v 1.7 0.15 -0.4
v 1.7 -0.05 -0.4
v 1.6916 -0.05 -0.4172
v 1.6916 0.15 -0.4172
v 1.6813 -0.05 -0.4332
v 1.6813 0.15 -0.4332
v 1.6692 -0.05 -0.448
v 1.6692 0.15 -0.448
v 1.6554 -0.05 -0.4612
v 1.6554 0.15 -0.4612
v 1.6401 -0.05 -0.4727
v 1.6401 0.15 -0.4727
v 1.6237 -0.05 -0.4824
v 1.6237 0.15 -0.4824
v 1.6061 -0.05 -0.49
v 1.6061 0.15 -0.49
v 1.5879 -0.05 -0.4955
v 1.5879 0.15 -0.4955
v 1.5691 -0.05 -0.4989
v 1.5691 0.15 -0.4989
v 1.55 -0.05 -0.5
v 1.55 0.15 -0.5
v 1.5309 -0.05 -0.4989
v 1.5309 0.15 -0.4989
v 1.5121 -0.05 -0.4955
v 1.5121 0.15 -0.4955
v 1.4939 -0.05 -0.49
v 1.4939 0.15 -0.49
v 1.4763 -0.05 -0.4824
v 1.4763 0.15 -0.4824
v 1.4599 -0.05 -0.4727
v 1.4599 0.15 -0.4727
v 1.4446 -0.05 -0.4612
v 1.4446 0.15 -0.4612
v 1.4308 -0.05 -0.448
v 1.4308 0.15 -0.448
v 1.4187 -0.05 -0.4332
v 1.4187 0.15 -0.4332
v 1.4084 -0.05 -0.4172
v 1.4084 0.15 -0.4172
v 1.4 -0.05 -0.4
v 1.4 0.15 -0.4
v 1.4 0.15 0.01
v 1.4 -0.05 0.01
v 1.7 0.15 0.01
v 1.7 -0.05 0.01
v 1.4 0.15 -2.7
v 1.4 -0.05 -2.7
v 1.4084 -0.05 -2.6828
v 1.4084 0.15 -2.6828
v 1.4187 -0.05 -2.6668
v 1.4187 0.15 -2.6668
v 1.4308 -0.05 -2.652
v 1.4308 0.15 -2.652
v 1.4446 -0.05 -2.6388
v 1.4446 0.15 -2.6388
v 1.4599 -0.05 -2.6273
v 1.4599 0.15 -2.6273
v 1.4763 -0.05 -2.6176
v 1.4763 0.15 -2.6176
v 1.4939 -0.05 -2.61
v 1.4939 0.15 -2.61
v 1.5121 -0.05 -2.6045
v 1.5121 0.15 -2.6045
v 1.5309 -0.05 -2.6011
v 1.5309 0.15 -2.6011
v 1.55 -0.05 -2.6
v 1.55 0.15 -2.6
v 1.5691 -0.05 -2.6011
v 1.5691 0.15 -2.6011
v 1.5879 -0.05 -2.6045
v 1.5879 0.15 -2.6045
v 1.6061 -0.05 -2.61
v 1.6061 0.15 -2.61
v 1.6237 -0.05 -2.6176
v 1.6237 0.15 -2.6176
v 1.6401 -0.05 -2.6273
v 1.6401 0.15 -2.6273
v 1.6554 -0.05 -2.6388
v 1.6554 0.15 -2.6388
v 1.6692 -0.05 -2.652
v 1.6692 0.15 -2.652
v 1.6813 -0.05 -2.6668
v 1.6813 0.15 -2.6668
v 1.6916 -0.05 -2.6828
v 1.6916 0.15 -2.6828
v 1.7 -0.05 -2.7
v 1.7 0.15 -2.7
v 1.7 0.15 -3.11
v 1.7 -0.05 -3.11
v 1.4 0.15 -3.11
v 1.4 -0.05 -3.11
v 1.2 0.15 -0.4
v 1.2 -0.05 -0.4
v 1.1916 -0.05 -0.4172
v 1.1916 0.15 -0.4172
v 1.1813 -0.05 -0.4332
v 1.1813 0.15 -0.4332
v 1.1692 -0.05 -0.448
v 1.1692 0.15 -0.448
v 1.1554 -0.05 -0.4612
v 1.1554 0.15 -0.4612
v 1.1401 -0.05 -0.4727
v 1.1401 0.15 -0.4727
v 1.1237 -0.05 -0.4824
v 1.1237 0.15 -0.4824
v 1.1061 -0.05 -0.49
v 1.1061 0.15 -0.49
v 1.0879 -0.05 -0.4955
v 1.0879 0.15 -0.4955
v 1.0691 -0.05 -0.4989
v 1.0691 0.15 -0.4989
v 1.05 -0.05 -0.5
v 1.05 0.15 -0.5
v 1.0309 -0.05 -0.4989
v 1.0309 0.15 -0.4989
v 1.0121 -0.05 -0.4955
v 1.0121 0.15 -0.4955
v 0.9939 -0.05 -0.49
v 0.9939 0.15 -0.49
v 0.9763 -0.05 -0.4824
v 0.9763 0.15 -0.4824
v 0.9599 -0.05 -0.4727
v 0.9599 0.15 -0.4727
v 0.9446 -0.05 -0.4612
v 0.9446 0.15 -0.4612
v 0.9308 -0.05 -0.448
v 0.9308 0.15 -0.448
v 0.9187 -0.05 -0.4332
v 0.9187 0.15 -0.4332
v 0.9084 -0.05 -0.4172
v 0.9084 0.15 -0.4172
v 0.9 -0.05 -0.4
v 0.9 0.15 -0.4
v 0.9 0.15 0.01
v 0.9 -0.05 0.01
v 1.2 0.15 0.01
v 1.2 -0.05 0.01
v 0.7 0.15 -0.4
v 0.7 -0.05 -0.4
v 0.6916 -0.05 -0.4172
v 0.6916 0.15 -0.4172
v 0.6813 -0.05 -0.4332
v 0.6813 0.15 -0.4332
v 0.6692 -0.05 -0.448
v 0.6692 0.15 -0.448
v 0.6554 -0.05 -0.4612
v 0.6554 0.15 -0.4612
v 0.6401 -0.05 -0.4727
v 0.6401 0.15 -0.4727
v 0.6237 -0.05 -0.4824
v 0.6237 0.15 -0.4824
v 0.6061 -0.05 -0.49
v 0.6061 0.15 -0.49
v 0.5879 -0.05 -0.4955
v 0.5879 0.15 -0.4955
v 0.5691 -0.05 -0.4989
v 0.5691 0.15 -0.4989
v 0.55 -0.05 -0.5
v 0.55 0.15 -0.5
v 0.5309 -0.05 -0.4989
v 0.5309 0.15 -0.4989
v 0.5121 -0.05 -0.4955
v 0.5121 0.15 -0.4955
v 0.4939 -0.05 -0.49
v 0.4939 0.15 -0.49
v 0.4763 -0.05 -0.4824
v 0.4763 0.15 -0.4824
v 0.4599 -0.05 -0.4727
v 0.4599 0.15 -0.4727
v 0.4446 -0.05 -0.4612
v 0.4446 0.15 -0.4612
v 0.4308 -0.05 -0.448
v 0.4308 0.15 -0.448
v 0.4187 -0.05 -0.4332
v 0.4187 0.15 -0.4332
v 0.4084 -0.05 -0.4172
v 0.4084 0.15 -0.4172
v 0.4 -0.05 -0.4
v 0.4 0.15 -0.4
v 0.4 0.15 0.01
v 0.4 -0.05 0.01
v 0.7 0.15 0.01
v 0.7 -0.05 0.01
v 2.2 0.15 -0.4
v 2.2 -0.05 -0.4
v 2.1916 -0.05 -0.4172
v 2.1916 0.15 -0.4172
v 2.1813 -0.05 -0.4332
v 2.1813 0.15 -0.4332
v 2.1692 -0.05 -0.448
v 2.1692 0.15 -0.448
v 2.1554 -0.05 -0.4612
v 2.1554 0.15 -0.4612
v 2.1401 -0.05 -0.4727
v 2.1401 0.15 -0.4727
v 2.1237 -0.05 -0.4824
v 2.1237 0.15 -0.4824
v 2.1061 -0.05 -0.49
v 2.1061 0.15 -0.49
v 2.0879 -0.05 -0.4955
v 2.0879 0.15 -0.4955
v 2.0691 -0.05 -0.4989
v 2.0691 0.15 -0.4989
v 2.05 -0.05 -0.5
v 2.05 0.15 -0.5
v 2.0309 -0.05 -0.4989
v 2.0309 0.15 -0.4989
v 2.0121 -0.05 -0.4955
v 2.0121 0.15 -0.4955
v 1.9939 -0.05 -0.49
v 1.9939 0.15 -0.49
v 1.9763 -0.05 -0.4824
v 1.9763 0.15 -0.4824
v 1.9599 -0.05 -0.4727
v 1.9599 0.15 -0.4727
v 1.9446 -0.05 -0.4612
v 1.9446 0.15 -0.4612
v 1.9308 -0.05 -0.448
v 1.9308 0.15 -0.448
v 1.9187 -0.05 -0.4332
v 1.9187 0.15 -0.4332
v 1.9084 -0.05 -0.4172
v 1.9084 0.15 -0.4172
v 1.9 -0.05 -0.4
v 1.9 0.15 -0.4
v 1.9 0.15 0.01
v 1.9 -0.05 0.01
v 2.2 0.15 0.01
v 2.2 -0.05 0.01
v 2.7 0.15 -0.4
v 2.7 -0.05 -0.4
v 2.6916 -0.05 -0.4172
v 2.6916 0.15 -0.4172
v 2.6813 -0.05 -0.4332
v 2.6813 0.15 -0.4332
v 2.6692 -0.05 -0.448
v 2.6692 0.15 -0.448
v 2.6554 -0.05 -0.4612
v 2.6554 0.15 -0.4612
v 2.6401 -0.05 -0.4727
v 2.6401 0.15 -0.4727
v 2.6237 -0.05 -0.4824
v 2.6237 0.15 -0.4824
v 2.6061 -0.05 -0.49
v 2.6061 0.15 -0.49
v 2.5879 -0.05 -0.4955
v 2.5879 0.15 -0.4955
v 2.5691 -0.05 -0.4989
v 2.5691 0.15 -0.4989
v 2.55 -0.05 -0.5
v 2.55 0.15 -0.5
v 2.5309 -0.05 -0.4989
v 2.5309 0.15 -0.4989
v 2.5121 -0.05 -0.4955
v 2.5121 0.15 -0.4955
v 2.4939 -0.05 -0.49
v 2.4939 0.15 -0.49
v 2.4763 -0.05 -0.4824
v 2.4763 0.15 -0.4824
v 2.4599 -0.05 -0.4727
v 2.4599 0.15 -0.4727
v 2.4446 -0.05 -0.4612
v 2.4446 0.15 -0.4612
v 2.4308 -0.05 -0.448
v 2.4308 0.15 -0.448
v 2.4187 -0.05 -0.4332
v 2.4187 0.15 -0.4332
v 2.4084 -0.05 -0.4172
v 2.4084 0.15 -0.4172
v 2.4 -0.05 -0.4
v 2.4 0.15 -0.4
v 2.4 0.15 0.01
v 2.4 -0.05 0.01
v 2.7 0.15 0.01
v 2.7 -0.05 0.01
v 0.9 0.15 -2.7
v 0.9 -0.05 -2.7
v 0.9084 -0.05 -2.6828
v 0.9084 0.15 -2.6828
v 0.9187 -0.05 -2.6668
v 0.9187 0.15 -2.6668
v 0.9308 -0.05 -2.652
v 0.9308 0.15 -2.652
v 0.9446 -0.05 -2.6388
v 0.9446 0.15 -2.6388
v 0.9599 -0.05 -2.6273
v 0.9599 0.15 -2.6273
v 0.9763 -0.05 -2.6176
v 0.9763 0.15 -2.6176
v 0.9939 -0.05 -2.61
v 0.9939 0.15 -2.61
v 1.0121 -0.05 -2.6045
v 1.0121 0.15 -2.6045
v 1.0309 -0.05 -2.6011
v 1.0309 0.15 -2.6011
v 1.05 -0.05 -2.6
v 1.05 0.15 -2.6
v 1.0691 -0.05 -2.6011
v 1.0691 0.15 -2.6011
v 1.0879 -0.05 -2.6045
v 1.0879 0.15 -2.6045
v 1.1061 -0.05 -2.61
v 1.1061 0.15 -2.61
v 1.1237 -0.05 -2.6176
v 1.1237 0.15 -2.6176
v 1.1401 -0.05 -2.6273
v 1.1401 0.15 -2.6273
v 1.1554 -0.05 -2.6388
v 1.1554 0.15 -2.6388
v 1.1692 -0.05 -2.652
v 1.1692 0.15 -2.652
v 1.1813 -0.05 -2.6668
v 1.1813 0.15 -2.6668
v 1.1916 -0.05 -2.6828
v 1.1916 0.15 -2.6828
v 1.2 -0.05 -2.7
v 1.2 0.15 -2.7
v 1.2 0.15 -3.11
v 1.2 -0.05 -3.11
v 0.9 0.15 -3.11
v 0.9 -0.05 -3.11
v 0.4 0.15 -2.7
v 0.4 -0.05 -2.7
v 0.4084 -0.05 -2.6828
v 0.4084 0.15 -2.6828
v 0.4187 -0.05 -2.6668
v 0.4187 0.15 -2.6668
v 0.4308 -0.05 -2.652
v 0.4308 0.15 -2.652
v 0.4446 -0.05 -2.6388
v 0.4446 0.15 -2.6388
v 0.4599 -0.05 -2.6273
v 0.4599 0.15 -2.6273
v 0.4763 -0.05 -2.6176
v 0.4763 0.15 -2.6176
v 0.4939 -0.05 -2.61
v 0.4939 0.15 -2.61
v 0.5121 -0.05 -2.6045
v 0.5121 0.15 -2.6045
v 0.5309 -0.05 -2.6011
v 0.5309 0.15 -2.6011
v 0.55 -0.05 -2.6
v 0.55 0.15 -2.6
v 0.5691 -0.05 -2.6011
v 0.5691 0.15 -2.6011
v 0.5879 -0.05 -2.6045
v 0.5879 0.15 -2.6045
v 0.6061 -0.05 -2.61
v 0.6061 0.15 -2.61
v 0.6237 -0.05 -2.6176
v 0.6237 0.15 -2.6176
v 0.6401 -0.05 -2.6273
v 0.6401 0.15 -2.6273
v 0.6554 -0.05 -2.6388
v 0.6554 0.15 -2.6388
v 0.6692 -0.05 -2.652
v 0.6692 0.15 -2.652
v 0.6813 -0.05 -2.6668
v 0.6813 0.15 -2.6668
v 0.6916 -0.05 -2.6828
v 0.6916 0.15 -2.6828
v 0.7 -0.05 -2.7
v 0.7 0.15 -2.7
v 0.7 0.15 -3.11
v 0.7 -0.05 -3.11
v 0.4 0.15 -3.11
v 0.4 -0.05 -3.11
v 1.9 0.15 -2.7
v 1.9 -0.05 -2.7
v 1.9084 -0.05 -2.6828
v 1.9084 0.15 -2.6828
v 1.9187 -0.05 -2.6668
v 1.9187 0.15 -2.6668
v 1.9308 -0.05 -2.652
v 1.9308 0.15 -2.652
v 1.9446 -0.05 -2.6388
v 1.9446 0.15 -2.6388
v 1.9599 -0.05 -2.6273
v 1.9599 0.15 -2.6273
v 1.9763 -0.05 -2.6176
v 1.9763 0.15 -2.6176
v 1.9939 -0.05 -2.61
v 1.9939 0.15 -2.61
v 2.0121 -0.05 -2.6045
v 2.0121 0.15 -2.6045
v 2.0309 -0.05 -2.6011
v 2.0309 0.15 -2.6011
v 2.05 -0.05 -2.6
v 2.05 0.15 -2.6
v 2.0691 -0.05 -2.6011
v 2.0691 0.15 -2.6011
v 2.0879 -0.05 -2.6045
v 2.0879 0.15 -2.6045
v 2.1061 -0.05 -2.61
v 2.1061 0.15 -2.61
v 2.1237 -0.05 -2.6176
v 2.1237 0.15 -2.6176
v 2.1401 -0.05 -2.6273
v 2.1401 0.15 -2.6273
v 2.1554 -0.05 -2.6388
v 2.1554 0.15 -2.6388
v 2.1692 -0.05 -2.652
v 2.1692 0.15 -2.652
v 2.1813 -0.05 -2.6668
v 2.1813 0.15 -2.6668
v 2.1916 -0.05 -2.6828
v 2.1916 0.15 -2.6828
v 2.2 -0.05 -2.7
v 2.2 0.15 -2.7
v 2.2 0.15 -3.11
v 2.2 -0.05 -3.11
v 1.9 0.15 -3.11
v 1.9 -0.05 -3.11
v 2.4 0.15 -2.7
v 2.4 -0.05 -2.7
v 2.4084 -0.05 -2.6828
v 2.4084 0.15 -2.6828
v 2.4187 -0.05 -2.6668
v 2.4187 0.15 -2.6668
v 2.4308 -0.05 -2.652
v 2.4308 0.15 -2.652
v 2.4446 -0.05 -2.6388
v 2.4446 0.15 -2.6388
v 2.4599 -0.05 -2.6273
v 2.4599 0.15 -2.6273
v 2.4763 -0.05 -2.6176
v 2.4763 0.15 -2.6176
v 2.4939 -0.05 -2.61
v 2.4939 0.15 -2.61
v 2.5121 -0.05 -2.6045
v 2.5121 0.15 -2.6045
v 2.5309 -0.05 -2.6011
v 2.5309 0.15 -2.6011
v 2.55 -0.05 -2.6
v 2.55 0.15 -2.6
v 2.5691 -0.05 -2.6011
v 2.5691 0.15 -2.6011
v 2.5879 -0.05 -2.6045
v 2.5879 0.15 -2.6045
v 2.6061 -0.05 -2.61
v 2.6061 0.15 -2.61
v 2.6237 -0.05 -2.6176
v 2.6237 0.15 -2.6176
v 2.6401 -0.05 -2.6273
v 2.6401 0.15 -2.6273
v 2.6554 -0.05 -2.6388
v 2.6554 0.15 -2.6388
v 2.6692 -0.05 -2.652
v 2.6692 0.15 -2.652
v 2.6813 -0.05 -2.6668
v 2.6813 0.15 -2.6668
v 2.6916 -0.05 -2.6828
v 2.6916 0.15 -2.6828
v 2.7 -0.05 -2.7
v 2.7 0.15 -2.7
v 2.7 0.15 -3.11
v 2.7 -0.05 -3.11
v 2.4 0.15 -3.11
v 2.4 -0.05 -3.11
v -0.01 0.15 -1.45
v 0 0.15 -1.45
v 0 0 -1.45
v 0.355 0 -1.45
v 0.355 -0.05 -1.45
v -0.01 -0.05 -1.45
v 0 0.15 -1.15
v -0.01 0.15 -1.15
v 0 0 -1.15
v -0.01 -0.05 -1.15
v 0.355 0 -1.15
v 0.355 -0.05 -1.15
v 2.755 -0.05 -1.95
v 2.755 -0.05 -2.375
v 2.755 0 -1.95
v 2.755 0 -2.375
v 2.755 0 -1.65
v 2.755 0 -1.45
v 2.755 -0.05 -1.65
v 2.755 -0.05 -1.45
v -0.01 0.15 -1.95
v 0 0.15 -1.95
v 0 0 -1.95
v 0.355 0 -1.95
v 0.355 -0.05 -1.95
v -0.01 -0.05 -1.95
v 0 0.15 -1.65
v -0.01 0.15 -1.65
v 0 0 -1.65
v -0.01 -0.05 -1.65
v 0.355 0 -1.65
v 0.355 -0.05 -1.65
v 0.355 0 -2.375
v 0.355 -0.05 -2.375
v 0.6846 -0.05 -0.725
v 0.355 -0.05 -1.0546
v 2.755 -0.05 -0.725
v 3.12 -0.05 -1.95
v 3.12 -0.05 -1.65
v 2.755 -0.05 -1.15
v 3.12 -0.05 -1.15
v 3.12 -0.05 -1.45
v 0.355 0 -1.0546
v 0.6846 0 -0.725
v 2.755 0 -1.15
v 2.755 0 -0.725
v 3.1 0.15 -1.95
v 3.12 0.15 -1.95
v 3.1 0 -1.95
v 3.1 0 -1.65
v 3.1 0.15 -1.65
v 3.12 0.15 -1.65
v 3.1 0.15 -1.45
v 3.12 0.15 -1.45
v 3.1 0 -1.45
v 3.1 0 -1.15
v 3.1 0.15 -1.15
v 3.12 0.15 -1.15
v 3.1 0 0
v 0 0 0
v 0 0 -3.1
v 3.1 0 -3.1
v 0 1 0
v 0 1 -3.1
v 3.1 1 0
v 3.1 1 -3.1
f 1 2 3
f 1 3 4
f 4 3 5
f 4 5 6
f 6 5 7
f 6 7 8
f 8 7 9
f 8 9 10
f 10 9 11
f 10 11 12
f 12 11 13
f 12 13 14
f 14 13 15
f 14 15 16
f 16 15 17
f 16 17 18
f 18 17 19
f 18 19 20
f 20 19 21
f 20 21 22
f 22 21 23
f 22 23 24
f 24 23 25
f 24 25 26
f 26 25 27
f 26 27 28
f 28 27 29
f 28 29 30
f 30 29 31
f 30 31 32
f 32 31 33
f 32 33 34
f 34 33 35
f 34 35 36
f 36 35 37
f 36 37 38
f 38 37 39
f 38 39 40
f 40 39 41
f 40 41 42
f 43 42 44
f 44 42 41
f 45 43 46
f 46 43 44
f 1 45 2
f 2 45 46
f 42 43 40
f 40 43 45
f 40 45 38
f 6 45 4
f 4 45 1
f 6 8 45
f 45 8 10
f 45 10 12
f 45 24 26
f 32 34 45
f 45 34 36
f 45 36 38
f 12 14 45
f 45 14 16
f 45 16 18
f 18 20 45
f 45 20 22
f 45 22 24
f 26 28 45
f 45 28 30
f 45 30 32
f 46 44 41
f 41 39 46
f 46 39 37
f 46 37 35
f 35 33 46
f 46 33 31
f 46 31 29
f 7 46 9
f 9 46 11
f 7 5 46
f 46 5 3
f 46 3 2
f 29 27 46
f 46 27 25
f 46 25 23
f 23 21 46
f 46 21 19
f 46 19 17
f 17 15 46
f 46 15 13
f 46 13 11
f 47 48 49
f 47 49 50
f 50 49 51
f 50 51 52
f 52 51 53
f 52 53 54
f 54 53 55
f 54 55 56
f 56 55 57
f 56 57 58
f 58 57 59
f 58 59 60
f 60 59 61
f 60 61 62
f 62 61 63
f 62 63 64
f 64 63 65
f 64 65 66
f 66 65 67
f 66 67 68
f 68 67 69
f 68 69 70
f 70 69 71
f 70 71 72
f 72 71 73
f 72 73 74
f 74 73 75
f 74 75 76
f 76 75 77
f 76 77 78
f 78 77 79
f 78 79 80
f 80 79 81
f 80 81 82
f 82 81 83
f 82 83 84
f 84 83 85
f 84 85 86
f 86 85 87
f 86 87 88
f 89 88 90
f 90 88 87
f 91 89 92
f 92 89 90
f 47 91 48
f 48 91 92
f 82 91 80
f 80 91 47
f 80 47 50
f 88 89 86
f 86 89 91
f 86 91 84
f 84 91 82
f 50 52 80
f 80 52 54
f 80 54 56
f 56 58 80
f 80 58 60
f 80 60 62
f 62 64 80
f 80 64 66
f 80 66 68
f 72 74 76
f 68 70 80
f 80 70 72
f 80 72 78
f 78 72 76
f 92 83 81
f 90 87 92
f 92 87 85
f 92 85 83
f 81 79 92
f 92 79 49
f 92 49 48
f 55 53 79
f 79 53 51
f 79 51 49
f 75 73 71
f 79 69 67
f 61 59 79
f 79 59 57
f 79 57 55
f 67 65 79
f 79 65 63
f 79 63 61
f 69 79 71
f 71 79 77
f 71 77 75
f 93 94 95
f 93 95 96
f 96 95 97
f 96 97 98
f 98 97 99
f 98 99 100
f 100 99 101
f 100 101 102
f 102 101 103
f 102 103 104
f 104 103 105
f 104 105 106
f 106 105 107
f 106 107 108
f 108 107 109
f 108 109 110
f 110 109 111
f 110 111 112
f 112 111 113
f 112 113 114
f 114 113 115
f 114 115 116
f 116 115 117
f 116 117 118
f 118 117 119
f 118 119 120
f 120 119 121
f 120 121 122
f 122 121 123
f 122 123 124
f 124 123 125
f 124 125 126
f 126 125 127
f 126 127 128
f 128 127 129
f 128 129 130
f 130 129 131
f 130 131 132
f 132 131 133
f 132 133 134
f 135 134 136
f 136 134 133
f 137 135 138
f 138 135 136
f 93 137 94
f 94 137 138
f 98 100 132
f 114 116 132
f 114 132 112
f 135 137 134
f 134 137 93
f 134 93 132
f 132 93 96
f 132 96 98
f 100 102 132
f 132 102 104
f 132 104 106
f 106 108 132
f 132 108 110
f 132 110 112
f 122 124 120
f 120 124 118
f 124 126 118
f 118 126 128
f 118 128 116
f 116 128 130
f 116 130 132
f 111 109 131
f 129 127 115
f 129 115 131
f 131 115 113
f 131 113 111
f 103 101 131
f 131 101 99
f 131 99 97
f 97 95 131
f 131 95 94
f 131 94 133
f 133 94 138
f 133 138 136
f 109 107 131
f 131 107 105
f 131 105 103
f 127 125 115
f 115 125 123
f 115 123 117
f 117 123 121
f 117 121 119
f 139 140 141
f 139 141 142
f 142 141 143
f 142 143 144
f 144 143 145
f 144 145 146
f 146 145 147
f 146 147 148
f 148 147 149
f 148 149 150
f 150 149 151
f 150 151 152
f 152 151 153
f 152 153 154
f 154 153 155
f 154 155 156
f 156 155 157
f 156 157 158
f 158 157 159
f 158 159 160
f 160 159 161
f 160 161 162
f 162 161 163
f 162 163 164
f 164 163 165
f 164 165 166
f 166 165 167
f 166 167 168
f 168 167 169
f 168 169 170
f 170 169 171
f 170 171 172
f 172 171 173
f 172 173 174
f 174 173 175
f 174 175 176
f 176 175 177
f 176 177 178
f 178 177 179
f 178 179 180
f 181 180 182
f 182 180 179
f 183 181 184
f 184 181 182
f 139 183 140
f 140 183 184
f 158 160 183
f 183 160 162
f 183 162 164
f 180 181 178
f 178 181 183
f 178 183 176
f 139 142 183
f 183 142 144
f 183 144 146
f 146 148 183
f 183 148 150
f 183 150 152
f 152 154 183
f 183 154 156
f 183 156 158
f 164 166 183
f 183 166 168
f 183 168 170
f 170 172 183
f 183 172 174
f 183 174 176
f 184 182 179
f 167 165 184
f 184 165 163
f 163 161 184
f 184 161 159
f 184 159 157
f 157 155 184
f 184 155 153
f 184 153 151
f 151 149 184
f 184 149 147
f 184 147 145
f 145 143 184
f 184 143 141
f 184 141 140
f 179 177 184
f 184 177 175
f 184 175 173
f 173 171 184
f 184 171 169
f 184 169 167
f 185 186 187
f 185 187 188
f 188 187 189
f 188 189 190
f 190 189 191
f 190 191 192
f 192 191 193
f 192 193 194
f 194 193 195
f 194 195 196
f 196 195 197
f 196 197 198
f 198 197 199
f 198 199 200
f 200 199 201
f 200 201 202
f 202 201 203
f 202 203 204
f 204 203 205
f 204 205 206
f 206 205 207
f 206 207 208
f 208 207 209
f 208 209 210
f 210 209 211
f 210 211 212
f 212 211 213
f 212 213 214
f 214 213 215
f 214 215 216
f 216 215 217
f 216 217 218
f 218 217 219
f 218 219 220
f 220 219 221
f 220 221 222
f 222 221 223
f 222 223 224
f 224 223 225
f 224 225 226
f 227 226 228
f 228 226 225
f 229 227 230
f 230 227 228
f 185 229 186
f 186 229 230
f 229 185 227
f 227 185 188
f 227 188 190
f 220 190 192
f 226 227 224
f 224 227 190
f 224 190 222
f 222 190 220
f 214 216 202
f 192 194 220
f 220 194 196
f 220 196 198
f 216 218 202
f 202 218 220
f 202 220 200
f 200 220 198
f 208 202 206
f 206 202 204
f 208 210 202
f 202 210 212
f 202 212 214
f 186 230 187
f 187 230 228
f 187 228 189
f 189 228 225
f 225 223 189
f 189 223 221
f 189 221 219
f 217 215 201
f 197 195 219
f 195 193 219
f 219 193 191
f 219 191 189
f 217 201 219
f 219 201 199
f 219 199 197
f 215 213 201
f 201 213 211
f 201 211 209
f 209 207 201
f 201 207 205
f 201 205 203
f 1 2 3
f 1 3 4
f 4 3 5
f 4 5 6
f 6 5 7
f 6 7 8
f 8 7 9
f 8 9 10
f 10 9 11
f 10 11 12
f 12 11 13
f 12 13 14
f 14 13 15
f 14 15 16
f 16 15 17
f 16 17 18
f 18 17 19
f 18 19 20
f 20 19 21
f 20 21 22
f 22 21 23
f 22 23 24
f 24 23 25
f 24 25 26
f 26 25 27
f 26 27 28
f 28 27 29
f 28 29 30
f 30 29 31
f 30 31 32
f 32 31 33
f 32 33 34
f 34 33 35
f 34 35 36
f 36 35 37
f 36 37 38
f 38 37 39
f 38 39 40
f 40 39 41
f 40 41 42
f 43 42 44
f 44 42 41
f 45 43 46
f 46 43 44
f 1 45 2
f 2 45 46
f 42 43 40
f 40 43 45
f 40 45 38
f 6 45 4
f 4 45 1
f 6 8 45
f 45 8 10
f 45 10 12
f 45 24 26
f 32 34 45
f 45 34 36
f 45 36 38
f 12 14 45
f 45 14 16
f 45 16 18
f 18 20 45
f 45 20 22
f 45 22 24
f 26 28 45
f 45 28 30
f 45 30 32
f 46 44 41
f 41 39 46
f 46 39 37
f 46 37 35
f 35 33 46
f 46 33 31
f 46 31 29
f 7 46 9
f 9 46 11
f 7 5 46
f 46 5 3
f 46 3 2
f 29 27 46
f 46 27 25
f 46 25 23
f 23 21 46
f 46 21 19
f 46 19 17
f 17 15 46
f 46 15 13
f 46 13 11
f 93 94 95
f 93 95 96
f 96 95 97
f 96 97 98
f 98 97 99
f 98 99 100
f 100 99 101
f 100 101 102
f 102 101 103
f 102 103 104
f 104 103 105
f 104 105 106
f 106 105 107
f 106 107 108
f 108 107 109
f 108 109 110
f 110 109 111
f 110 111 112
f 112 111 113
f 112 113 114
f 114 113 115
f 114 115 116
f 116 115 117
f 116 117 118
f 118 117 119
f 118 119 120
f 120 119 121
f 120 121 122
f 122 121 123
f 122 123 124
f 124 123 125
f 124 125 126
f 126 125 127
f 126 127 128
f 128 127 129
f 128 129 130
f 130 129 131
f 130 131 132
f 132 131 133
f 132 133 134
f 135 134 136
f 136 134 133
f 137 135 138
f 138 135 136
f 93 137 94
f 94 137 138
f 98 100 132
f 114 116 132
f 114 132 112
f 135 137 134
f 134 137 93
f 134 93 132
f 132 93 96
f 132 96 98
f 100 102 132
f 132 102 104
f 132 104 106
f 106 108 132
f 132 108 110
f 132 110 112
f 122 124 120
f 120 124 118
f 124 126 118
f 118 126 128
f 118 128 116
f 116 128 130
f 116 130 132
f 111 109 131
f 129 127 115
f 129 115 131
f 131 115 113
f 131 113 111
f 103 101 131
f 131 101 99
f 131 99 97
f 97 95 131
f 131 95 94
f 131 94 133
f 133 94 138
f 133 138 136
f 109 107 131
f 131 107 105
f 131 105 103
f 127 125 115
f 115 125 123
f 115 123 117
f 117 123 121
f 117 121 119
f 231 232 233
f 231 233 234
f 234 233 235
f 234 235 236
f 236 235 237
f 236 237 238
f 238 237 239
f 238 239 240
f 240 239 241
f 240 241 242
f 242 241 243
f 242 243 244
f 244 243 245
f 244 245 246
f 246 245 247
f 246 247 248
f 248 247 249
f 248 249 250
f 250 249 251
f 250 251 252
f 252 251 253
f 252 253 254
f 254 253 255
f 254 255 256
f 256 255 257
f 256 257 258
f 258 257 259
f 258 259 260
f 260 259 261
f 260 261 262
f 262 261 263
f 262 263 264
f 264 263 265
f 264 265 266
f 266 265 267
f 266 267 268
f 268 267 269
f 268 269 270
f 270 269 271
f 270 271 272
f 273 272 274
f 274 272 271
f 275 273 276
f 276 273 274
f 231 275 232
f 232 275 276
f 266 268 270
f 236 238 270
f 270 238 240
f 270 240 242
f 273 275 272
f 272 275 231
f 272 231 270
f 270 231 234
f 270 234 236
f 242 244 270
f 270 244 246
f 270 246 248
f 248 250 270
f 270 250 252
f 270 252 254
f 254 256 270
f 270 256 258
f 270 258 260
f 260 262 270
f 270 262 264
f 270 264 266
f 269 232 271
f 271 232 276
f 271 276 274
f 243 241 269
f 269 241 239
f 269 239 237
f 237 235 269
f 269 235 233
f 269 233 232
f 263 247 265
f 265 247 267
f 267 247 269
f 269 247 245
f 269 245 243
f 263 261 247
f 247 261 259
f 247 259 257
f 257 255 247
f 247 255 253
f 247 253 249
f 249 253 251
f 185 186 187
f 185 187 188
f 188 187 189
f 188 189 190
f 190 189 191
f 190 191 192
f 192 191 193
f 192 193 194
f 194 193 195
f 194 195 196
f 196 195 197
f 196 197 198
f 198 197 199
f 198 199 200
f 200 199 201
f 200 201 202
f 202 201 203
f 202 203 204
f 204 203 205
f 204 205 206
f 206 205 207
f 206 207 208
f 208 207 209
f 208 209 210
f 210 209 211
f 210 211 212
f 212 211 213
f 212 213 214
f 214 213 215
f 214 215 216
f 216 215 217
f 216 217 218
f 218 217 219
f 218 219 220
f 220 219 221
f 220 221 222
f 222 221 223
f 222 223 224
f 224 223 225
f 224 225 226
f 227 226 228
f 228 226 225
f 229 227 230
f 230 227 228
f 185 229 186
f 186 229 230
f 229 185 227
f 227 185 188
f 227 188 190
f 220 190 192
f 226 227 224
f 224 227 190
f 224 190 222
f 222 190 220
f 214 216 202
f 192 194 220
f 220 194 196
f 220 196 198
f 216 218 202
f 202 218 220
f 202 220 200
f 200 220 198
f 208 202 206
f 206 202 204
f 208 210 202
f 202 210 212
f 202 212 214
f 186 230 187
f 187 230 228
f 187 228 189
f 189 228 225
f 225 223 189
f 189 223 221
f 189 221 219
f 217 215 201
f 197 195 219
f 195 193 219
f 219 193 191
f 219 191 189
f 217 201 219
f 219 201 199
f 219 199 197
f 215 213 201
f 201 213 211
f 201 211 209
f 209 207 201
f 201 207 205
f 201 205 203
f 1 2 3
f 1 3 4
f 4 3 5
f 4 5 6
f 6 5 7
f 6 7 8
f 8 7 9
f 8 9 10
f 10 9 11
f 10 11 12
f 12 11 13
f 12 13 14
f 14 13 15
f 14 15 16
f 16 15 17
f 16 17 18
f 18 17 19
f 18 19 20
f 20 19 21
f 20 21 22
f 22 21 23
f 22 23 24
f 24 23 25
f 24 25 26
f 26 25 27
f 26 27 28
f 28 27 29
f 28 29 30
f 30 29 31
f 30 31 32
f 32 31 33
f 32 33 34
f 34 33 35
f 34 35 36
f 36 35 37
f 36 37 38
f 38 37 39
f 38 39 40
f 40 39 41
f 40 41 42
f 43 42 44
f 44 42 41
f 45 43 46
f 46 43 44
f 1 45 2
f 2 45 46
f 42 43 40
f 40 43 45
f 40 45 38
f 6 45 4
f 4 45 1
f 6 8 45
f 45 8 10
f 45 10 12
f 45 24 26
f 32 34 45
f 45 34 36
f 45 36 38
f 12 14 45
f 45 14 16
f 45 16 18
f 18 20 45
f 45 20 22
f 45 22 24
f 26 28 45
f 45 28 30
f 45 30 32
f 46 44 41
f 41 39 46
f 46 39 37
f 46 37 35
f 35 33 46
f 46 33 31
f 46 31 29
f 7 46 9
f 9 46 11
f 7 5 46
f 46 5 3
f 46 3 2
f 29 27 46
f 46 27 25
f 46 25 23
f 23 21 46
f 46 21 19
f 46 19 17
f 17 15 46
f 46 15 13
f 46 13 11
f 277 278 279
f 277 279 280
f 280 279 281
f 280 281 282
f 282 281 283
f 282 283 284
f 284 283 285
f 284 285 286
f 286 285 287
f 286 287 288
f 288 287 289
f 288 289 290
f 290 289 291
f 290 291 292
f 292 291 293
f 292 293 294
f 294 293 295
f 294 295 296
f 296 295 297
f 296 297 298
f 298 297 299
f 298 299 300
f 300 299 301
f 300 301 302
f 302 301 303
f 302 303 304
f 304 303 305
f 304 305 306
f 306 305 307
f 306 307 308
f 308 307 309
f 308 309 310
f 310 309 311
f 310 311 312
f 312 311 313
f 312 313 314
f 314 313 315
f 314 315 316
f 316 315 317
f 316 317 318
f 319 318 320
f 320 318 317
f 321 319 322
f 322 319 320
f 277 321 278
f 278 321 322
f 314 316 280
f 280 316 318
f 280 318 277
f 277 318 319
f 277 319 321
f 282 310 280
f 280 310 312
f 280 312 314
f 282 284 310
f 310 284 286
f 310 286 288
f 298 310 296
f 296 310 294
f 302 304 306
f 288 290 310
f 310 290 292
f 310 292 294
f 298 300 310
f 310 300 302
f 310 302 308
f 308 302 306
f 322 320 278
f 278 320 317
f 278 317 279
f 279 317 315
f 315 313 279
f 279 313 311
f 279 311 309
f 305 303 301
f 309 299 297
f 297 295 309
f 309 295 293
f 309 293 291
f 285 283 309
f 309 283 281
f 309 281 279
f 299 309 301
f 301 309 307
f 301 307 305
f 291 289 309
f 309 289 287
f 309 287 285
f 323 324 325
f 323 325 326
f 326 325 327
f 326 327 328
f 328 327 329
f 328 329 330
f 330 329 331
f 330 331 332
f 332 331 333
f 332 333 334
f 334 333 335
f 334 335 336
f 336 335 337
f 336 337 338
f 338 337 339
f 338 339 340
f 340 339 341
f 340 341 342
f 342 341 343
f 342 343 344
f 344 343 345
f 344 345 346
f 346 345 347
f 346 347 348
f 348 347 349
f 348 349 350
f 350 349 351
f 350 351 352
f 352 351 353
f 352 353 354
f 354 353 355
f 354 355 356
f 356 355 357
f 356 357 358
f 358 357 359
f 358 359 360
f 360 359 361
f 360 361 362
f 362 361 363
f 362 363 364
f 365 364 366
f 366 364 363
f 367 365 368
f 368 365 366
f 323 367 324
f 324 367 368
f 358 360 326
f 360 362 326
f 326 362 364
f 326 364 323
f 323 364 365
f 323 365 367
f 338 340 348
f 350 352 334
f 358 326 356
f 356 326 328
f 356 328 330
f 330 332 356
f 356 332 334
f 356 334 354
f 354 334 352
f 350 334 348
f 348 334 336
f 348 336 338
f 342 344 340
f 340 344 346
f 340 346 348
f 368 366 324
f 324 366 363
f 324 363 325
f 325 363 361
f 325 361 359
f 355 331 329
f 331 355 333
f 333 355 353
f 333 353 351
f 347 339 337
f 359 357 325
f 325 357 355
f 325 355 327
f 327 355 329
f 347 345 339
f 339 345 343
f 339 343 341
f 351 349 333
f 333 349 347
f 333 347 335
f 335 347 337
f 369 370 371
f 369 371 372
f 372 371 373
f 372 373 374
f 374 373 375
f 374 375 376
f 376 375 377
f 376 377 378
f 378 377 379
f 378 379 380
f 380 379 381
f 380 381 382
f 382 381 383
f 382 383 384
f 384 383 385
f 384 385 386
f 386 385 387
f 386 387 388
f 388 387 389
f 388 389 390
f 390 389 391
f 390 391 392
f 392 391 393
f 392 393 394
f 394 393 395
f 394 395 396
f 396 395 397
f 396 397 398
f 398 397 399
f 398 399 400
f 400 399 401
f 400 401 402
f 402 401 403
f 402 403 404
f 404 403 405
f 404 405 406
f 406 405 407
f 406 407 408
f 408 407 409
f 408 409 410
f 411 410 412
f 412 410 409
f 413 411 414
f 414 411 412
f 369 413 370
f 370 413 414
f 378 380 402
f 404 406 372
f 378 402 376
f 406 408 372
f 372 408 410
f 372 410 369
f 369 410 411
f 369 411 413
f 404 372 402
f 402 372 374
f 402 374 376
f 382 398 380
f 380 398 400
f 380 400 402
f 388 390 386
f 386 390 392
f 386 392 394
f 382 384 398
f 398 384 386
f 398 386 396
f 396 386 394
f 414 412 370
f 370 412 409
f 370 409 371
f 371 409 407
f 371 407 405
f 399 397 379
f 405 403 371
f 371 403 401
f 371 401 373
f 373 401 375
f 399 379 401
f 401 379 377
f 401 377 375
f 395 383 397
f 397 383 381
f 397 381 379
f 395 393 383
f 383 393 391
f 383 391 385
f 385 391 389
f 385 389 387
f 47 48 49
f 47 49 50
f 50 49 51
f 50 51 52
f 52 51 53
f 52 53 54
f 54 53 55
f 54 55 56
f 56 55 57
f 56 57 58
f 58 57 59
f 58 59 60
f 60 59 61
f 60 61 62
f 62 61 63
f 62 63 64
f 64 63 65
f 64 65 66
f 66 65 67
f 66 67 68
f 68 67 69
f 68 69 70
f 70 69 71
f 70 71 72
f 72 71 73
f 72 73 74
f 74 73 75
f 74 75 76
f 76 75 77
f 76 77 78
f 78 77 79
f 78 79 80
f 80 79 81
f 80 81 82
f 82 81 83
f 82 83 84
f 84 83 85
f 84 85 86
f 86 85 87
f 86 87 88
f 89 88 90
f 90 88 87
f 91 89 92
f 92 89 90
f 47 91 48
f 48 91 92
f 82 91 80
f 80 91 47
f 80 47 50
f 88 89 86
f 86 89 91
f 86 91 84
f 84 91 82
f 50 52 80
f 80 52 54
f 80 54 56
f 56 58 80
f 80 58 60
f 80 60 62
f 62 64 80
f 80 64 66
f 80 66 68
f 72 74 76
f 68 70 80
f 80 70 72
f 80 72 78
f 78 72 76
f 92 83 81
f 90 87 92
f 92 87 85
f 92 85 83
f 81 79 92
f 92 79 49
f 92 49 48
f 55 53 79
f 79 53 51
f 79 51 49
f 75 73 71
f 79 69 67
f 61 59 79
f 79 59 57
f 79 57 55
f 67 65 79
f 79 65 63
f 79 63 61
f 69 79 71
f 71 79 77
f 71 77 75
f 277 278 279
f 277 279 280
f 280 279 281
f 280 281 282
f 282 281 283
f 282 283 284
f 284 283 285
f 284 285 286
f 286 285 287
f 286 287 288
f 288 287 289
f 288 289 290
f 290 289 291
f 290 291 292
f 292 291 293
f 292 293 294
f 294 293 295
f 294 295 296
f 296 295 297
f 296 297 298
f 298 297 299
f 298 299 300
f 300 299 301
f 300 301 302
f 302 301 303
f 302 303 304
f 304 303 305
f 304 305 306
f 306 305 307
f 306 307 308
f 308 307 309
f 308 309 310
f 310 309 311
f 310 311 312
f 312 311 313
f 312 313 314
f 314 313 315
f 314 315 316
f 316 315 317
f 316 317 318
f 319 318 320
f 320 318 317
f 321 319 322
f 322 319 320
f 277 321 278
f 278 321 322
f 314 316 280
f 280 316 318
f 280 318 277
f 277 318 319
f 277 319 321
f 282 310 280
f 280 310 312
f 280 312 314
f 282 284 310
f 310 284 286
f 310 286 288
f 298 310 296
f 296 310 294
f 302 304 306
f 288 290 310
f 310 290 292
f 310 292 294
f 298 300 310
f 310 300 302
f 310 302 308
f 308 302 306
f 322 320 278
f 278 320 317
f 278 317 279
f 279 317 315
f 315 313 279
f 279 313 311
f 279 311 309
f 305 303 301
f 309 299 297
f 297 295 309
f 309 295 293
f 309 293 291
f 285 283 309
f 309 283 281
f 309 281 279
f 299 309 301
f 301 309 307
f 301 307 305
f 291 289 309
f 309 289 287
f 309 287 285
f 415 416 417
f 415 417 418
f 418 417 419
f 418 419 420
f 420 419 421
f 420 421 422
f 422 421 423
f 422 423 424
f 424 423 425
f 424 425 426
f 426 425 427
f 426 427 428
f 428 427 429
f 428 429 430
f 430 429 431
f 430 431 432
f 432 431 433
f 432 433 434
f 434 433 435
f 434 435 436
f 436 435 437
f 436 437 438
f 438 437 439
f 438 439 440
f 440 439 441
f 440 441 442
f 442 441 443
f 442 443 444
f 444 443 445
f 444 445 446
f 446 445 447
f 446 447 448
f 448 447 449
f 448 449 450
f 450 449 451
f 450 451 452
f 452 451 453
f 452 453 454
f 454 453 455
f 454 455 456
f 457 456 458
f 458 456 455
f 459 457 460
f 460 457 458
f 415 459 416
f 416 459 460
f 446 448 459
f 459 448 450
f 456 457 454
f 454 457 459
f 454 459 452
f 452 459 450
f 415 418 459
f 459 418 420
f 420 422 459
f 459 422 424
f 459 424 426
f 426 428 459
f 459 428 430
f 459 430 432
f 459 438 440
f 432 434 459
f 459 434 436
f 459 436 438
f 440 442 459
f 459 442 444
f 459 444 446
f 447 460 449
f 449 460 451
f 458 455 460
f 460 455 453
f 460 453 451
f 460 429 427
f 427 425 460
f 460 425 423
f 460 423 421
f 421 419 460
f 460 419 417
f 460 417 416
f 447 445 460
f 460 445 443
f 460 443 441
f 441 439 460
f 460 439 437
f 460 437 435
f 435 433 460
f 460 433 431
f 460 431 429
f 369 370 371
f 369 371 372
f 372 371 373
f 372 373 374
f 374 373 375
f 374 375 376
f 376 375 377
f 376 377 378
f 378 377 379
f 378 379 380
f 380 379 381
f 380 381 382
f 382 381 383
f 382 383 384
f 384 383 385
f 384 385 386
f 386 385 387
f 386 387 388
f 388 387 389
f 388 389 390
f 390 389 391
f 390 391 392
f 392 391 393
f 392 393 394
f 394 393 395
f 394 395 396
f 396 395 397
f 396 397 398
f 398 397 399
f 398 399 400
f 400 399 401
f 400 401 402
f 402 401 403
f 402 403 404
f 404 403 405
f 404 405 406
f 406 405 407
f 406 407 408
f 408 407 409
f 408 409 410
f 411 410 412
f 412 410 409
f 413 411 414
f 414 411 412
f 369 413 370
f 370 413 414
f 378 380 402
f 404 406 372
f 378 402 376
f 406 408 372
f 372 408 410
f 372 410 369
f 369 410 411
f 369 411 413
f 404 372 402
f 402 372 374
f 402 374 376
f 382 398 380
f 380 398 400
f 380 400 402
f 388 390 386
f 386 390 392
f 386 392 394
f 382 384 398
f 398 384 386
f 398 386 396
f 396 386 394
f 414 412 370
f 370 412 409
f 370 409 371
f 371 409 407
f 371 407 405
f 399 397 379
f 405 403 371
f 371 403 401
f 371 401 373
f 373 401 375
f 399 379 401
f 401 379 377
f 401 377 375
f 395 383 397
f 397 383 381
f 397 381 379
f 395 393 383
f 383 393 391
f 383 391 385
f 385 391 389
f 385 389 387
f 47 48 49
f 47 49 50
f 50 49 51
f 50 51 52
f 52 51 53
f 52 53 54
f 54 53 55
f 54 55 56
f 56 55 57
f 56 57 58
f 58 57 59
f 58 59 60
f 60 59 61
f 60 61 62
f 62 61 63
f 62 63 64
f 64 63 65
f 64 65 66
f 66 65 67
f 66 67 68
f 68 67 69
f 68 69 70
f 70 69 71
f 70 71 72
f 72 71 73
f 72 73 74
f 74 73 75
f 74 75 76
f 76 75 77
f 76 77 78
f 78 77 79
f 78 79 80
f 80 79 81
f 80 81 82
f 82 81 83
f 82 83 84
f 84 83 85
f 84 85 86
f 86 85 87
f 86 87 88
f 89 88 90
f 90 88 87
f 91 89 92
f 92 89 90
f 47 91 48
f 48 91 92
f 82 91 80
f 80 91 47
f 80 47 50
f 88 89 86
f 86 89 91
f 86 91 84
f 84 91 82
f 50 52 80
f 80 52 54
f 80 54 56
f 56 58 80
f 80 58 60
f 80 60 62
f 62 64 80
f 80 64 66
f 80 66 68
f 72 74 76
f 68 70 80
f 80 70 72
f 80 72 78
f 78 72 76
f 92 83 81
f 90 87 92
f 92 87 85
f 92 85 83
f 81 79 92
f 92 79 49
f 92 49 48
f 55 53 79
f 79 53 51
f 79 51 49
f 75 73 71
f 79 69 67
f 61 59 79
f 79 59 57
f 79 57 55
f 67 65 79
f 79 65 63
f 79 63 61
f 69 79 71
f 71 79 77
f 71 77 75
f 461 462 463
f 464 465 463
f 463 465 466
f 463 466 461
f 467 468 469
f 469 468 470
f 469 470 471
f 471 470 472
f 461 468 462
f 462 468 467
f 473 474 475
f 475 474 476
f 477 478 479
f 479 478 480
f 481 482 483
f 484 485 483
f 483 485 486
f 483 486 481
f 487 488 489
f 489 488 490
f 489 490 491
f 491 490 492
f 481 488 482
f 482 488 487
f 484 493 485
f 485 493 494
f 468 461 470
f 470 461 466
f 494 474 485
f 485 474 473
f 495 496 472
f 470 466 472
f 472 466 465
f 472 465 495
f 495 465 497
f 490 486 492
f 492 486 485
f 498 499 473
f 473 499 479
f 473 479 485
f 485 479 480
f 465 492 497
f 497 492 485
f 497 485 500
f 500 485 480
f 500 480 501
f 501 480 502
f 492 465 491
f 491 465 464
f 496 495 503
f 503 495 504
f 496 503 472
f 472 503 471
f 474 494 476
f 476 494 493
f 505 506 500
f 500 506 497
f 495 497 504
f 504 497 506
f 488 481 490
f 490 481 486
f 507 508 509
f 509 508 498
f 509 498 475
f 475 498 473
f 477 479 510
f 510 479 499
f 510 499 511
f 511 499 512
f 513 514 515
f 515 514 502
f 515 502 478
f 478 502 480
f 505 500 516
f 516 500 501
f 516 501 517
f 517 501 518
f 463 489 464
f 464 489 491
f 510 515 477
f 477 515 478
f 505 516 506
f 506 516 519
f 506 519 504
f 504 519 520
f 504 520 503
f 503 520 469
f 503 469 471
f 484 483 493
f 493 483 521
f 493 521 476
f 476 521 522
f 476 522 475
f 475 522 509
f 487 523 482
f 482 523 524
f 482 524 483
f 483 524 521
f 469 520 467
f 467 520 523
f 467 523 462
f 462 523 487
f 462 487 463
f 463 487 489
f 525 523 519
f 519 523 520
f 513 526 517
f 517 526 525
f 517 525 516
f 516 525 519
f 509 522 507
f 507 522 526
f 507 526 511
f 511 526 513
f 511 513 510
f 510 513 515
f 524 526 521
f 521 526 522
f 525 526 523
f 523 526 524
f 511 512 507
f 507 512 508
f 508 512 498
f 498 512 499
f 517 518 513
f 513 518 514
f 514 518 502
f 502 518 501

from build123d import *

# Parameters (mm, degrees)
SKETCH1_W            = 3.1
SKETCH1_H            = 3.1
BOSS_EXTRUDE1_DEPTH  = 1
BOSS_EXTRUDE2_START  = 0.05
BOSS_EXTRUDE2_DEPTH  = 0.2
BOSS_EXTRUDE3_START  = 0.05
BOSS_EXTRUDE3_DEPTH  = 0.2
BOSS_EXTRUDE4_START  = 0.05
BOSS_EXTRUDE4_DEPTH  = 0.2
LPATTERN3_COUNT      = 2
LPATTERN3_PITCH      = 0.5
MIRROR7_START        = 0.05
MIRROR7_COPY_1_DEPTH = 0.2
LPATTERN4_START      = -0.05
LPATTERN4_DEPTH      = 0.2
LPATTERN4_2_DEPTH    = 0.2
LPATTERN4_3_DEPTH    = 0.2
LPATTERN4_4_DEPTH    = 0.2
LPATTERN4_5_DEPTH    = 0.2
LPATTERN4_6_DEPTH    = 0.2
LPATTERN4_7_DEPTH    = 0.2
LPATTERN4_8_DEPTH    = 0.2
LPATTERN5_START      = -0.05
LPATTERN5_DEPTH      = 0.2
LPATTERN5_2_DEPTH    = 0.2
LPATTERN5_3_DEPTH    = 0.2
LPATTERN5_4_DEPTH    = 0.2
LPATTERN5_5_DEPTH    = 0.2
LPATTERN5_6_DEPTH    = 0.2
LPATTERN5_7_DEPTH    = 0.2
LPATTERN5_8_DEPTH    = 0.2
BOSS_EXTRUDE5_DEPTH  = 0.05


# Read off the part's stored shape, not the designer's step: LPattern4, LPattern5
with BuildPart() as part:
    # Sketch1 → Boss-Extrude1 (new body)
    with BuildSketch(Plane(origin=(0, 0, 0), x_dir=(1, 0, 0), z_dir=(0, 1, 0))):
        with Locations((1.55, 1.55)):
            Rectangle(SKETCH1_W, SKETCH1_H)
    extrude(amount=BOSS_EXTRUDE1_DEPTH)


with BuildPart() as body_2:
    # Sketch2 → Boss-Extrude2 (new body)
    with BuildSketch(Plane.XZ.offset(BOSS_EXTRUDE2_START)):
        with BuildLine():
            Line((1.7, 0.01), (1.7, -0.4))
            ThreePointArc((1.7, -0.4), (1.55, -0.5), (1.4, -0.4))
            Line((1.4, -0.4), (1.4, 0.01))
            Line((1.4, 0.01), (1.7, 0.01))
        make_face()
    extrude(amount=-BOSS_EXTRUDE2_DEPTH)


with BuildPart() as body_3:
    # Sketch4 → Boss-Extrude3 (new body)
    with BuildSketch(Plane.XZ.offset(BOSS_EXTRUDE3_START)):
        with BuildLine():
            Line((1.4, -3.11), (1.4, -2.7))
            ThreePointArc((1.4, -2.7), (1.55, -2.6), (1.7, -2.7))
            Line((1.7, -2.7), (1.7, -3.11))
            Line((1.7, -3.11), (1.4, -3.11))
        make_face()
    extrude(amount=-BOSS_EXTRUDE3_DEPTH)


with BuildPart() as body_4:
    # Sketch5 → Boss-Extrude4 (new body)
    with BuildSketch(Plane.XZ.offset(BOSS_EXTRUDE4_START)):
        with BuildLine():
            Line((-0.01, -1.15), (0.4, -1.15))
            ThreePointArc((0.4, -1.15), (0.5, -1.3), (0.4, -1.45))
            Line((0.4, -1.45), (-0.01, -1.45))
            Line((-0.01, -1.45), (-0.01, -1.15))
        make_face()
    boss_extrude4 = extrude(amount=-BOSS_EXTRUDE4_DEPTH)


with BuildPart() as lpattern3_1:
    # LPattern3: Boss-Extrude4 ×2
    with Locations(*[(0, 0, -i * LPATTERN3_PITCH) for i in range(1, LPATTERN3_COUNT)]):
        add(boss_extrude4)


with BuildPart() as part_1:
    add(part.part)

    # Mirror7: Boss-Extrude4 across plane
    add(boss_extrude4.mirror(Plane(origin=(1.555, 0, 0), x_dir=(0, 0, 1), z_dir=(1, 0, 0))))

    # Mirror7 copy 1 sketch → Mirror7 copy 1 (add)
    with BuildSketch(Plane(origin=(3.11, 0, -0.5), x_dir=(-1, 0, 0), z_dir=(0, -1, 0)).offset(MIRROR7_START)):
        with BuildLine():
            Line((-0.01, 1.15), (0.4, 1.15))
            ThreePointArc((0.4, 1.15), (0.5, 1.3), (0.4, 1.45))
            Line((0.4, 1.45), (-0.01, 1.45))
            Line((-0.01, 1.45), (-0.01, 1.15))
        make_face()
    extrude(amount=-MIRROR7_COPY_1_DEPTH)

    add(body_4.part)  # Boss-Extrude5 merges body 4

    add(lpattern3_1.part)  # Boss-Extrude5 merges LPattern3_1
    # Sketch6 → Boss-Extrude5 (add)
    with BuildSketch(Plane.XZ):
        Polygon((0.684601229, -0.725), (0.355, -1.054601229), (0.355, -2.375), (2.755, -2.375), (2.755, -0.725), (1.555, -0.725), align=None)
    extrude(amount=BOSS_EXTRUDE5_DEPTH)


with BuildPart() as body_6:
    # LPattern4 outline → LPattern4 (new body)
    with BuildSketch(Plane(origin=(0, 0, 0), x_dir=(1, 0, 0), z_dir=(0, 1, 0)).offset(LPATTERN4_START)):
        with BuildLine():
            ThreePointArc((2.2, 0.4), (2.05, 0.5), (1.9, 0.4))
            Line((1.9, 0.4), (1.9, -0.01))
            Line((1.9, -0.01), (2.2, -0.01))
            Line((2.2, -0.01), (2.2, 0.4))
        make_face()
    extrude(amount=LPATTERN4_DEPTH)


with BuildPart() as body_7:
    # LPattern4 2 outline → LPattern4 2 (new body)
    with BuildSketch(Plane(origin=(0, 0, 0), x_dir=(1, 0, 0), z_dir=(0, 1, 0)).offset(LPATTERN4_START)):
        with BuildLine():
            ThreePointArc((2.7, 0.4), (2.55, 0.5), (2.4, 0.4))
            Line((2.4, 0.4), (2.4, -0.01))
            Line((2.4, -0.01), (2.7, -0.01))
            Line((2.7, -0.01), (2.7, 0.4))
        make_face()
    extrude(amount=LPATTERN4_2_DEPTH)


with BuildPart() as body_8:
    # LPattern4 3 outline → LPattern4 3 (new body)
    with BuildSketch(Plane(origin=(0, 0, 0), x_dir=(1, 0, 0), z_dir=(0, 1, 0)).offset(LPATTERN4_START)):
        with BuildLine():
            ThreePointArc((1.2, 0.4), (1.05, 0.5), (0.9, 0.4))
            Line((0.9, 0.4), (0.9, -0.01))
            Line((0.9, -0.01), (1.2, -0.01))
            Line((1.2, -0.01), (1.2, 0.4))
        make_face()
    extrude(amount=LPATTERN4_3_DEPTH)


with BuildPart() as body_9:
    # LPattern4 4 outline → LPattern4 4 (new body)
    with BuildSketch(Plane(origin=(0, 0, 0), x_dir=(1, 0, 0), z_dir=(0, 1, 0)).offset(LPATTERN4_START)):
        with BuildLine():
            ThreePointArc((1.7, 0.4), (1.55, 0.5), (1.4, 0.4))
            Line((1.4, 0.4), (1.4, -0.01))
            Line((1.4, -0.01), (1.7, -0.01))
            Line((1.7, -0.01), (1.7, 0.4))
        make_face()
    extrude(amount=LPATTERN4_4_DEPTH)


with BuildPart() as body_10:
    # LPattern4 5 outline → LPattern4 5 (new body)
    with BuildSketch(Plane(origin=(0, 0, 0), x_dir=(1, 0, 0), z_dir=(0, 1, 0)).offset(LPATTERN4_START)):
        with BuildLine():
            ThreePointArc((2.2, 0.4), (2.05, 0.5), (1.9, 0.4))
            Line((1.9, 0.4), (1.9, -0.01))
            Line((1.9, -0.01), (2.2, -0.01))
            Line((2.2, -0.01), (2.2, 0.4))
        make_face()
    extrude(amount=LPATTERN4_5_DEPTH)


with BuildPart() as body_11:
    # LPattern4 6 outline → LPattern4 6 (new body)
    with BuildSketch(Plane(origin=(0, 0, 0), x_dir=(1, 0, 0), z_dir=(0, 1, 0)).offset(LPATTERN4_START)):
        with BuildLine():
            ThreePointArc((0.7, 0.4), (0.55, 0.5), (0.4, 0.4))
            Line((0.4, 0.4), (0.4, -0.01))
            Line((0.4, -0.01), (0.7, -0.01))
            Line((0.7, -0.01), (0.7, 0.4))
        make_face()
    extrude(amount=LPATTERN4_6_DEPTH)


with BuildPart() as body_12:
    # LPattern4 7 outline → LPattern4 7 (new body)
    with BuildSketch(Plane(origin=(0, 0, 0), x_dir=(1, 0, 0), z_dir=(0, 1, 0)).offset(LPATTERN4_START)):
        with BuildLine():
            ThreePointArc((1.2, 0.4), (1.05, 0.5), (0.9, 0.4))
            Line((0.9, 0.4), (0.9, -0.01))
            Line((0.9, -0.01), (1.2, -0.01))
            Line((1.2, -0.01), (1.2, 0.4))
        make_face()
    extrude(amount=LPATTERN4_7_DEPTH)


with BuildPart() as body_13:
    # LPattern4 8 outline → LPattern4 8 (new body)
    with BuildSketch(Plane(origin=(0, 0, 0), x_dir=(1, 0, 0), z_dir=(0, 1, 0)).offset(LPATTERN4_START)):
        with BuildLine():
            ThreePointArc((1.7, 0.4), (1.55, 0.5), (1.4, 0.4))
            Line((1.4, 0.4), (1.4, -0.01))
            Line((1.4, -0.01), (1.7, -0.01))
            Line((1.7, -0.01), (1.7, 0.4))
        make_face()
    extrude(amount=LPATTERN4_8_DEPTH)


with BuildPart() as body_14:
    # LPattern5 outline → LPattern5 (new body)
    with BuildSketch(Plane(origin=(0, 0, 0), x_dir=(1, 0, 0), z_dir=(0, 1, 0)).offset(LPATTERN5_START)):
        with BuildLine():
            ThreePointArc((1.9, 2.7), (2.05, 2.6), (2.2, 2.7))
            Line((2.2, 2.7), (2.2, 3.11))
            Line((2.2, 3.11), (1.9, 3.11))
            Line((1.9, 3.11), (1.9, 2.7))
        make_face()
    extrude(amount=LPATTERN5_DEPTH)


with BuildPart() as body_15:
    # LPattern5 2 outline → LPattern5 2 (new body)
    with BuildSketch(Plane(origin=(0, 0, 0), x_dir=(1, 0, 0), z_dir=(0, 1, 0)).offset(LPATTERN5_START)):
        with BuildLine():
            ThreePointArc((2.4, 2.7), (2.55, 2.6), (2.7, 2.7))
            Line((2.7, 2.7), (2.7, 3.11))
            Line((2.7, 3.11), (2.4, 3.11))
            Line((2.4, 3.11), (2.4, 2.7))
        make_face()
    extrude(amount=LPATTERN5_2_DEPTH)


with BuildPart() as body_16:
    # LPattern5 3 outline → LPattern5 3 (new body)
    with BuildSketch(Plane(origin=(0, 0, 0), x_dir=(1, 0, 0), z_dir=(0, 1, 0)).offset(LPATTERN5_START)):
        with BuildLine():
            ThreePointArc((0.9, 2.7), (1.05, 2.6), (1.2, 2.7))
            Line((1.2, 2.7), (1.2, 3.11))
            Line((1.2, 3.11), (0.9, 3.11))
            Line((0.9, 3.11), (0.9, 2.7))
        make_face()
    extrude(amount=LPATTERN5_3_DEPTH)


with BuildPart() as body_17:
    # LPattern5 4 outline → LPattern5 4 (new body)
    with BuildSketch(Plane(origin=(0, 0, 0), x_dir=(1, 0, 0), z_dir=(0, 1, 0)).offset(LPATTERN5_START)):
        with BuildLine():
            ThreePointArc((1.4, 2.7), (1.55, 2.6), (1.7, 2.7))
            Line((1.7, 2.7), (1.7, 3.11))
            Line((1.7, 3.11), (1.4, 3.11))
            Line((1.4, 3.11), (1.4, 2.7))
        make_face()
    extrude(amount=LPATTERN5_4_DEPTH)


with BuildPart() as body_18:
    # LPattern5 5 outline → LPattern5 5 (new body)
    with BuildSketch(Plane(origin=(0, 0, 0), x_dir=(1, 0, 0), z_dir=(0, 1, 0)).offset(LPATTERN5_START)):
        with BuildLine():
            ThreePointArc((1.9, 2.7), (2.05, 2.6), (2.2, 2.7))
            Line((2.2, 2.7), (2.2, 3.11))
            Line((2.2, 3.11), (1.9, 3.11))
            Line((1.9, 3.11), (1.9, 2.7))
        make_face()
    extrude(amount=LPATTERN5_5_DEPTH)


with BuildPart() as body_19:
    # LPattern5 6 outline → LPattern5 6 (new body)
    with BuildSketch(Plane(origin=(0, 0, 0), x_dir=(1, 0, 0), z_dir=(0, 1, 0)).offset(LPATTERN5_START)):
        with BuildLine():
            ThreePointArc((0.4, 2.7), (0.55, 2.6), (0.7, 2.7))
            Line((0.7, 2.7), (0.7, 3.11))
            Line((0.7, 3.11), (0.4, 3.11))
            Line((0.4, 3.11), (0.4, 2.7))
        make_face()
    extrude(amount=LPATTERN5_6_DEPTH)


with BuildPart() as body_20:
    # LPattern5 7 outline → LPattern5 7 (new body)
    with BuildSketch(Plane(origin=(0, 0, 0), x_dir=(1, 0, 0), z_dir=(0, 1, 0)).offset(LPATTERN5_START)):
        with BuildLine():
            ThreePointArc((0.9, 2.7), (1.05, 2.6), (1.2, 2.7))
            Line((1.2, 2.7), (1.2, 3.11))
            Line((1.2, 3.11), (0.9, 3.11))
            Line((0.9, 3.11), (0.9, 2.7))
        make_face()
    extrude(amount=LPATTERN5_7_DEPTH)


with BuildPart() as body_21:
    # LPattern5 8 outline → LPattern5 8 (new body)
    with BuildSketch(Plane(origin=(0, 0, 0), x_dir=(1, 0, 0), z_dir=(0, 1, 0)).offset(LPATTERN5_START)):
        with BuildLine():
            ThreePointArc((1.4, 2.7), (1.55, 2.6), (1.7, 2.7))
            Line((1.7, 2.7), (1.7, 3.11))
            Line((1.7, 3.11), (1.4, 3.11))
            Line((1.4, 3.11), (1.4, 2.7))
        make_face()
    extrude(amount=LPATTERN5_8_DEPTH)


solid = Compound([body_2.part, body_3.part, part_1.part, body_6.part, body_7.part, body_8.part, body_9.part, body_10.part, body_11.part, body_12.part, body_13.part, body_14.part, body_15.part, body_16.part, body_17.part, body_18.part, body_19.part, body_20.part, body_21.part])
